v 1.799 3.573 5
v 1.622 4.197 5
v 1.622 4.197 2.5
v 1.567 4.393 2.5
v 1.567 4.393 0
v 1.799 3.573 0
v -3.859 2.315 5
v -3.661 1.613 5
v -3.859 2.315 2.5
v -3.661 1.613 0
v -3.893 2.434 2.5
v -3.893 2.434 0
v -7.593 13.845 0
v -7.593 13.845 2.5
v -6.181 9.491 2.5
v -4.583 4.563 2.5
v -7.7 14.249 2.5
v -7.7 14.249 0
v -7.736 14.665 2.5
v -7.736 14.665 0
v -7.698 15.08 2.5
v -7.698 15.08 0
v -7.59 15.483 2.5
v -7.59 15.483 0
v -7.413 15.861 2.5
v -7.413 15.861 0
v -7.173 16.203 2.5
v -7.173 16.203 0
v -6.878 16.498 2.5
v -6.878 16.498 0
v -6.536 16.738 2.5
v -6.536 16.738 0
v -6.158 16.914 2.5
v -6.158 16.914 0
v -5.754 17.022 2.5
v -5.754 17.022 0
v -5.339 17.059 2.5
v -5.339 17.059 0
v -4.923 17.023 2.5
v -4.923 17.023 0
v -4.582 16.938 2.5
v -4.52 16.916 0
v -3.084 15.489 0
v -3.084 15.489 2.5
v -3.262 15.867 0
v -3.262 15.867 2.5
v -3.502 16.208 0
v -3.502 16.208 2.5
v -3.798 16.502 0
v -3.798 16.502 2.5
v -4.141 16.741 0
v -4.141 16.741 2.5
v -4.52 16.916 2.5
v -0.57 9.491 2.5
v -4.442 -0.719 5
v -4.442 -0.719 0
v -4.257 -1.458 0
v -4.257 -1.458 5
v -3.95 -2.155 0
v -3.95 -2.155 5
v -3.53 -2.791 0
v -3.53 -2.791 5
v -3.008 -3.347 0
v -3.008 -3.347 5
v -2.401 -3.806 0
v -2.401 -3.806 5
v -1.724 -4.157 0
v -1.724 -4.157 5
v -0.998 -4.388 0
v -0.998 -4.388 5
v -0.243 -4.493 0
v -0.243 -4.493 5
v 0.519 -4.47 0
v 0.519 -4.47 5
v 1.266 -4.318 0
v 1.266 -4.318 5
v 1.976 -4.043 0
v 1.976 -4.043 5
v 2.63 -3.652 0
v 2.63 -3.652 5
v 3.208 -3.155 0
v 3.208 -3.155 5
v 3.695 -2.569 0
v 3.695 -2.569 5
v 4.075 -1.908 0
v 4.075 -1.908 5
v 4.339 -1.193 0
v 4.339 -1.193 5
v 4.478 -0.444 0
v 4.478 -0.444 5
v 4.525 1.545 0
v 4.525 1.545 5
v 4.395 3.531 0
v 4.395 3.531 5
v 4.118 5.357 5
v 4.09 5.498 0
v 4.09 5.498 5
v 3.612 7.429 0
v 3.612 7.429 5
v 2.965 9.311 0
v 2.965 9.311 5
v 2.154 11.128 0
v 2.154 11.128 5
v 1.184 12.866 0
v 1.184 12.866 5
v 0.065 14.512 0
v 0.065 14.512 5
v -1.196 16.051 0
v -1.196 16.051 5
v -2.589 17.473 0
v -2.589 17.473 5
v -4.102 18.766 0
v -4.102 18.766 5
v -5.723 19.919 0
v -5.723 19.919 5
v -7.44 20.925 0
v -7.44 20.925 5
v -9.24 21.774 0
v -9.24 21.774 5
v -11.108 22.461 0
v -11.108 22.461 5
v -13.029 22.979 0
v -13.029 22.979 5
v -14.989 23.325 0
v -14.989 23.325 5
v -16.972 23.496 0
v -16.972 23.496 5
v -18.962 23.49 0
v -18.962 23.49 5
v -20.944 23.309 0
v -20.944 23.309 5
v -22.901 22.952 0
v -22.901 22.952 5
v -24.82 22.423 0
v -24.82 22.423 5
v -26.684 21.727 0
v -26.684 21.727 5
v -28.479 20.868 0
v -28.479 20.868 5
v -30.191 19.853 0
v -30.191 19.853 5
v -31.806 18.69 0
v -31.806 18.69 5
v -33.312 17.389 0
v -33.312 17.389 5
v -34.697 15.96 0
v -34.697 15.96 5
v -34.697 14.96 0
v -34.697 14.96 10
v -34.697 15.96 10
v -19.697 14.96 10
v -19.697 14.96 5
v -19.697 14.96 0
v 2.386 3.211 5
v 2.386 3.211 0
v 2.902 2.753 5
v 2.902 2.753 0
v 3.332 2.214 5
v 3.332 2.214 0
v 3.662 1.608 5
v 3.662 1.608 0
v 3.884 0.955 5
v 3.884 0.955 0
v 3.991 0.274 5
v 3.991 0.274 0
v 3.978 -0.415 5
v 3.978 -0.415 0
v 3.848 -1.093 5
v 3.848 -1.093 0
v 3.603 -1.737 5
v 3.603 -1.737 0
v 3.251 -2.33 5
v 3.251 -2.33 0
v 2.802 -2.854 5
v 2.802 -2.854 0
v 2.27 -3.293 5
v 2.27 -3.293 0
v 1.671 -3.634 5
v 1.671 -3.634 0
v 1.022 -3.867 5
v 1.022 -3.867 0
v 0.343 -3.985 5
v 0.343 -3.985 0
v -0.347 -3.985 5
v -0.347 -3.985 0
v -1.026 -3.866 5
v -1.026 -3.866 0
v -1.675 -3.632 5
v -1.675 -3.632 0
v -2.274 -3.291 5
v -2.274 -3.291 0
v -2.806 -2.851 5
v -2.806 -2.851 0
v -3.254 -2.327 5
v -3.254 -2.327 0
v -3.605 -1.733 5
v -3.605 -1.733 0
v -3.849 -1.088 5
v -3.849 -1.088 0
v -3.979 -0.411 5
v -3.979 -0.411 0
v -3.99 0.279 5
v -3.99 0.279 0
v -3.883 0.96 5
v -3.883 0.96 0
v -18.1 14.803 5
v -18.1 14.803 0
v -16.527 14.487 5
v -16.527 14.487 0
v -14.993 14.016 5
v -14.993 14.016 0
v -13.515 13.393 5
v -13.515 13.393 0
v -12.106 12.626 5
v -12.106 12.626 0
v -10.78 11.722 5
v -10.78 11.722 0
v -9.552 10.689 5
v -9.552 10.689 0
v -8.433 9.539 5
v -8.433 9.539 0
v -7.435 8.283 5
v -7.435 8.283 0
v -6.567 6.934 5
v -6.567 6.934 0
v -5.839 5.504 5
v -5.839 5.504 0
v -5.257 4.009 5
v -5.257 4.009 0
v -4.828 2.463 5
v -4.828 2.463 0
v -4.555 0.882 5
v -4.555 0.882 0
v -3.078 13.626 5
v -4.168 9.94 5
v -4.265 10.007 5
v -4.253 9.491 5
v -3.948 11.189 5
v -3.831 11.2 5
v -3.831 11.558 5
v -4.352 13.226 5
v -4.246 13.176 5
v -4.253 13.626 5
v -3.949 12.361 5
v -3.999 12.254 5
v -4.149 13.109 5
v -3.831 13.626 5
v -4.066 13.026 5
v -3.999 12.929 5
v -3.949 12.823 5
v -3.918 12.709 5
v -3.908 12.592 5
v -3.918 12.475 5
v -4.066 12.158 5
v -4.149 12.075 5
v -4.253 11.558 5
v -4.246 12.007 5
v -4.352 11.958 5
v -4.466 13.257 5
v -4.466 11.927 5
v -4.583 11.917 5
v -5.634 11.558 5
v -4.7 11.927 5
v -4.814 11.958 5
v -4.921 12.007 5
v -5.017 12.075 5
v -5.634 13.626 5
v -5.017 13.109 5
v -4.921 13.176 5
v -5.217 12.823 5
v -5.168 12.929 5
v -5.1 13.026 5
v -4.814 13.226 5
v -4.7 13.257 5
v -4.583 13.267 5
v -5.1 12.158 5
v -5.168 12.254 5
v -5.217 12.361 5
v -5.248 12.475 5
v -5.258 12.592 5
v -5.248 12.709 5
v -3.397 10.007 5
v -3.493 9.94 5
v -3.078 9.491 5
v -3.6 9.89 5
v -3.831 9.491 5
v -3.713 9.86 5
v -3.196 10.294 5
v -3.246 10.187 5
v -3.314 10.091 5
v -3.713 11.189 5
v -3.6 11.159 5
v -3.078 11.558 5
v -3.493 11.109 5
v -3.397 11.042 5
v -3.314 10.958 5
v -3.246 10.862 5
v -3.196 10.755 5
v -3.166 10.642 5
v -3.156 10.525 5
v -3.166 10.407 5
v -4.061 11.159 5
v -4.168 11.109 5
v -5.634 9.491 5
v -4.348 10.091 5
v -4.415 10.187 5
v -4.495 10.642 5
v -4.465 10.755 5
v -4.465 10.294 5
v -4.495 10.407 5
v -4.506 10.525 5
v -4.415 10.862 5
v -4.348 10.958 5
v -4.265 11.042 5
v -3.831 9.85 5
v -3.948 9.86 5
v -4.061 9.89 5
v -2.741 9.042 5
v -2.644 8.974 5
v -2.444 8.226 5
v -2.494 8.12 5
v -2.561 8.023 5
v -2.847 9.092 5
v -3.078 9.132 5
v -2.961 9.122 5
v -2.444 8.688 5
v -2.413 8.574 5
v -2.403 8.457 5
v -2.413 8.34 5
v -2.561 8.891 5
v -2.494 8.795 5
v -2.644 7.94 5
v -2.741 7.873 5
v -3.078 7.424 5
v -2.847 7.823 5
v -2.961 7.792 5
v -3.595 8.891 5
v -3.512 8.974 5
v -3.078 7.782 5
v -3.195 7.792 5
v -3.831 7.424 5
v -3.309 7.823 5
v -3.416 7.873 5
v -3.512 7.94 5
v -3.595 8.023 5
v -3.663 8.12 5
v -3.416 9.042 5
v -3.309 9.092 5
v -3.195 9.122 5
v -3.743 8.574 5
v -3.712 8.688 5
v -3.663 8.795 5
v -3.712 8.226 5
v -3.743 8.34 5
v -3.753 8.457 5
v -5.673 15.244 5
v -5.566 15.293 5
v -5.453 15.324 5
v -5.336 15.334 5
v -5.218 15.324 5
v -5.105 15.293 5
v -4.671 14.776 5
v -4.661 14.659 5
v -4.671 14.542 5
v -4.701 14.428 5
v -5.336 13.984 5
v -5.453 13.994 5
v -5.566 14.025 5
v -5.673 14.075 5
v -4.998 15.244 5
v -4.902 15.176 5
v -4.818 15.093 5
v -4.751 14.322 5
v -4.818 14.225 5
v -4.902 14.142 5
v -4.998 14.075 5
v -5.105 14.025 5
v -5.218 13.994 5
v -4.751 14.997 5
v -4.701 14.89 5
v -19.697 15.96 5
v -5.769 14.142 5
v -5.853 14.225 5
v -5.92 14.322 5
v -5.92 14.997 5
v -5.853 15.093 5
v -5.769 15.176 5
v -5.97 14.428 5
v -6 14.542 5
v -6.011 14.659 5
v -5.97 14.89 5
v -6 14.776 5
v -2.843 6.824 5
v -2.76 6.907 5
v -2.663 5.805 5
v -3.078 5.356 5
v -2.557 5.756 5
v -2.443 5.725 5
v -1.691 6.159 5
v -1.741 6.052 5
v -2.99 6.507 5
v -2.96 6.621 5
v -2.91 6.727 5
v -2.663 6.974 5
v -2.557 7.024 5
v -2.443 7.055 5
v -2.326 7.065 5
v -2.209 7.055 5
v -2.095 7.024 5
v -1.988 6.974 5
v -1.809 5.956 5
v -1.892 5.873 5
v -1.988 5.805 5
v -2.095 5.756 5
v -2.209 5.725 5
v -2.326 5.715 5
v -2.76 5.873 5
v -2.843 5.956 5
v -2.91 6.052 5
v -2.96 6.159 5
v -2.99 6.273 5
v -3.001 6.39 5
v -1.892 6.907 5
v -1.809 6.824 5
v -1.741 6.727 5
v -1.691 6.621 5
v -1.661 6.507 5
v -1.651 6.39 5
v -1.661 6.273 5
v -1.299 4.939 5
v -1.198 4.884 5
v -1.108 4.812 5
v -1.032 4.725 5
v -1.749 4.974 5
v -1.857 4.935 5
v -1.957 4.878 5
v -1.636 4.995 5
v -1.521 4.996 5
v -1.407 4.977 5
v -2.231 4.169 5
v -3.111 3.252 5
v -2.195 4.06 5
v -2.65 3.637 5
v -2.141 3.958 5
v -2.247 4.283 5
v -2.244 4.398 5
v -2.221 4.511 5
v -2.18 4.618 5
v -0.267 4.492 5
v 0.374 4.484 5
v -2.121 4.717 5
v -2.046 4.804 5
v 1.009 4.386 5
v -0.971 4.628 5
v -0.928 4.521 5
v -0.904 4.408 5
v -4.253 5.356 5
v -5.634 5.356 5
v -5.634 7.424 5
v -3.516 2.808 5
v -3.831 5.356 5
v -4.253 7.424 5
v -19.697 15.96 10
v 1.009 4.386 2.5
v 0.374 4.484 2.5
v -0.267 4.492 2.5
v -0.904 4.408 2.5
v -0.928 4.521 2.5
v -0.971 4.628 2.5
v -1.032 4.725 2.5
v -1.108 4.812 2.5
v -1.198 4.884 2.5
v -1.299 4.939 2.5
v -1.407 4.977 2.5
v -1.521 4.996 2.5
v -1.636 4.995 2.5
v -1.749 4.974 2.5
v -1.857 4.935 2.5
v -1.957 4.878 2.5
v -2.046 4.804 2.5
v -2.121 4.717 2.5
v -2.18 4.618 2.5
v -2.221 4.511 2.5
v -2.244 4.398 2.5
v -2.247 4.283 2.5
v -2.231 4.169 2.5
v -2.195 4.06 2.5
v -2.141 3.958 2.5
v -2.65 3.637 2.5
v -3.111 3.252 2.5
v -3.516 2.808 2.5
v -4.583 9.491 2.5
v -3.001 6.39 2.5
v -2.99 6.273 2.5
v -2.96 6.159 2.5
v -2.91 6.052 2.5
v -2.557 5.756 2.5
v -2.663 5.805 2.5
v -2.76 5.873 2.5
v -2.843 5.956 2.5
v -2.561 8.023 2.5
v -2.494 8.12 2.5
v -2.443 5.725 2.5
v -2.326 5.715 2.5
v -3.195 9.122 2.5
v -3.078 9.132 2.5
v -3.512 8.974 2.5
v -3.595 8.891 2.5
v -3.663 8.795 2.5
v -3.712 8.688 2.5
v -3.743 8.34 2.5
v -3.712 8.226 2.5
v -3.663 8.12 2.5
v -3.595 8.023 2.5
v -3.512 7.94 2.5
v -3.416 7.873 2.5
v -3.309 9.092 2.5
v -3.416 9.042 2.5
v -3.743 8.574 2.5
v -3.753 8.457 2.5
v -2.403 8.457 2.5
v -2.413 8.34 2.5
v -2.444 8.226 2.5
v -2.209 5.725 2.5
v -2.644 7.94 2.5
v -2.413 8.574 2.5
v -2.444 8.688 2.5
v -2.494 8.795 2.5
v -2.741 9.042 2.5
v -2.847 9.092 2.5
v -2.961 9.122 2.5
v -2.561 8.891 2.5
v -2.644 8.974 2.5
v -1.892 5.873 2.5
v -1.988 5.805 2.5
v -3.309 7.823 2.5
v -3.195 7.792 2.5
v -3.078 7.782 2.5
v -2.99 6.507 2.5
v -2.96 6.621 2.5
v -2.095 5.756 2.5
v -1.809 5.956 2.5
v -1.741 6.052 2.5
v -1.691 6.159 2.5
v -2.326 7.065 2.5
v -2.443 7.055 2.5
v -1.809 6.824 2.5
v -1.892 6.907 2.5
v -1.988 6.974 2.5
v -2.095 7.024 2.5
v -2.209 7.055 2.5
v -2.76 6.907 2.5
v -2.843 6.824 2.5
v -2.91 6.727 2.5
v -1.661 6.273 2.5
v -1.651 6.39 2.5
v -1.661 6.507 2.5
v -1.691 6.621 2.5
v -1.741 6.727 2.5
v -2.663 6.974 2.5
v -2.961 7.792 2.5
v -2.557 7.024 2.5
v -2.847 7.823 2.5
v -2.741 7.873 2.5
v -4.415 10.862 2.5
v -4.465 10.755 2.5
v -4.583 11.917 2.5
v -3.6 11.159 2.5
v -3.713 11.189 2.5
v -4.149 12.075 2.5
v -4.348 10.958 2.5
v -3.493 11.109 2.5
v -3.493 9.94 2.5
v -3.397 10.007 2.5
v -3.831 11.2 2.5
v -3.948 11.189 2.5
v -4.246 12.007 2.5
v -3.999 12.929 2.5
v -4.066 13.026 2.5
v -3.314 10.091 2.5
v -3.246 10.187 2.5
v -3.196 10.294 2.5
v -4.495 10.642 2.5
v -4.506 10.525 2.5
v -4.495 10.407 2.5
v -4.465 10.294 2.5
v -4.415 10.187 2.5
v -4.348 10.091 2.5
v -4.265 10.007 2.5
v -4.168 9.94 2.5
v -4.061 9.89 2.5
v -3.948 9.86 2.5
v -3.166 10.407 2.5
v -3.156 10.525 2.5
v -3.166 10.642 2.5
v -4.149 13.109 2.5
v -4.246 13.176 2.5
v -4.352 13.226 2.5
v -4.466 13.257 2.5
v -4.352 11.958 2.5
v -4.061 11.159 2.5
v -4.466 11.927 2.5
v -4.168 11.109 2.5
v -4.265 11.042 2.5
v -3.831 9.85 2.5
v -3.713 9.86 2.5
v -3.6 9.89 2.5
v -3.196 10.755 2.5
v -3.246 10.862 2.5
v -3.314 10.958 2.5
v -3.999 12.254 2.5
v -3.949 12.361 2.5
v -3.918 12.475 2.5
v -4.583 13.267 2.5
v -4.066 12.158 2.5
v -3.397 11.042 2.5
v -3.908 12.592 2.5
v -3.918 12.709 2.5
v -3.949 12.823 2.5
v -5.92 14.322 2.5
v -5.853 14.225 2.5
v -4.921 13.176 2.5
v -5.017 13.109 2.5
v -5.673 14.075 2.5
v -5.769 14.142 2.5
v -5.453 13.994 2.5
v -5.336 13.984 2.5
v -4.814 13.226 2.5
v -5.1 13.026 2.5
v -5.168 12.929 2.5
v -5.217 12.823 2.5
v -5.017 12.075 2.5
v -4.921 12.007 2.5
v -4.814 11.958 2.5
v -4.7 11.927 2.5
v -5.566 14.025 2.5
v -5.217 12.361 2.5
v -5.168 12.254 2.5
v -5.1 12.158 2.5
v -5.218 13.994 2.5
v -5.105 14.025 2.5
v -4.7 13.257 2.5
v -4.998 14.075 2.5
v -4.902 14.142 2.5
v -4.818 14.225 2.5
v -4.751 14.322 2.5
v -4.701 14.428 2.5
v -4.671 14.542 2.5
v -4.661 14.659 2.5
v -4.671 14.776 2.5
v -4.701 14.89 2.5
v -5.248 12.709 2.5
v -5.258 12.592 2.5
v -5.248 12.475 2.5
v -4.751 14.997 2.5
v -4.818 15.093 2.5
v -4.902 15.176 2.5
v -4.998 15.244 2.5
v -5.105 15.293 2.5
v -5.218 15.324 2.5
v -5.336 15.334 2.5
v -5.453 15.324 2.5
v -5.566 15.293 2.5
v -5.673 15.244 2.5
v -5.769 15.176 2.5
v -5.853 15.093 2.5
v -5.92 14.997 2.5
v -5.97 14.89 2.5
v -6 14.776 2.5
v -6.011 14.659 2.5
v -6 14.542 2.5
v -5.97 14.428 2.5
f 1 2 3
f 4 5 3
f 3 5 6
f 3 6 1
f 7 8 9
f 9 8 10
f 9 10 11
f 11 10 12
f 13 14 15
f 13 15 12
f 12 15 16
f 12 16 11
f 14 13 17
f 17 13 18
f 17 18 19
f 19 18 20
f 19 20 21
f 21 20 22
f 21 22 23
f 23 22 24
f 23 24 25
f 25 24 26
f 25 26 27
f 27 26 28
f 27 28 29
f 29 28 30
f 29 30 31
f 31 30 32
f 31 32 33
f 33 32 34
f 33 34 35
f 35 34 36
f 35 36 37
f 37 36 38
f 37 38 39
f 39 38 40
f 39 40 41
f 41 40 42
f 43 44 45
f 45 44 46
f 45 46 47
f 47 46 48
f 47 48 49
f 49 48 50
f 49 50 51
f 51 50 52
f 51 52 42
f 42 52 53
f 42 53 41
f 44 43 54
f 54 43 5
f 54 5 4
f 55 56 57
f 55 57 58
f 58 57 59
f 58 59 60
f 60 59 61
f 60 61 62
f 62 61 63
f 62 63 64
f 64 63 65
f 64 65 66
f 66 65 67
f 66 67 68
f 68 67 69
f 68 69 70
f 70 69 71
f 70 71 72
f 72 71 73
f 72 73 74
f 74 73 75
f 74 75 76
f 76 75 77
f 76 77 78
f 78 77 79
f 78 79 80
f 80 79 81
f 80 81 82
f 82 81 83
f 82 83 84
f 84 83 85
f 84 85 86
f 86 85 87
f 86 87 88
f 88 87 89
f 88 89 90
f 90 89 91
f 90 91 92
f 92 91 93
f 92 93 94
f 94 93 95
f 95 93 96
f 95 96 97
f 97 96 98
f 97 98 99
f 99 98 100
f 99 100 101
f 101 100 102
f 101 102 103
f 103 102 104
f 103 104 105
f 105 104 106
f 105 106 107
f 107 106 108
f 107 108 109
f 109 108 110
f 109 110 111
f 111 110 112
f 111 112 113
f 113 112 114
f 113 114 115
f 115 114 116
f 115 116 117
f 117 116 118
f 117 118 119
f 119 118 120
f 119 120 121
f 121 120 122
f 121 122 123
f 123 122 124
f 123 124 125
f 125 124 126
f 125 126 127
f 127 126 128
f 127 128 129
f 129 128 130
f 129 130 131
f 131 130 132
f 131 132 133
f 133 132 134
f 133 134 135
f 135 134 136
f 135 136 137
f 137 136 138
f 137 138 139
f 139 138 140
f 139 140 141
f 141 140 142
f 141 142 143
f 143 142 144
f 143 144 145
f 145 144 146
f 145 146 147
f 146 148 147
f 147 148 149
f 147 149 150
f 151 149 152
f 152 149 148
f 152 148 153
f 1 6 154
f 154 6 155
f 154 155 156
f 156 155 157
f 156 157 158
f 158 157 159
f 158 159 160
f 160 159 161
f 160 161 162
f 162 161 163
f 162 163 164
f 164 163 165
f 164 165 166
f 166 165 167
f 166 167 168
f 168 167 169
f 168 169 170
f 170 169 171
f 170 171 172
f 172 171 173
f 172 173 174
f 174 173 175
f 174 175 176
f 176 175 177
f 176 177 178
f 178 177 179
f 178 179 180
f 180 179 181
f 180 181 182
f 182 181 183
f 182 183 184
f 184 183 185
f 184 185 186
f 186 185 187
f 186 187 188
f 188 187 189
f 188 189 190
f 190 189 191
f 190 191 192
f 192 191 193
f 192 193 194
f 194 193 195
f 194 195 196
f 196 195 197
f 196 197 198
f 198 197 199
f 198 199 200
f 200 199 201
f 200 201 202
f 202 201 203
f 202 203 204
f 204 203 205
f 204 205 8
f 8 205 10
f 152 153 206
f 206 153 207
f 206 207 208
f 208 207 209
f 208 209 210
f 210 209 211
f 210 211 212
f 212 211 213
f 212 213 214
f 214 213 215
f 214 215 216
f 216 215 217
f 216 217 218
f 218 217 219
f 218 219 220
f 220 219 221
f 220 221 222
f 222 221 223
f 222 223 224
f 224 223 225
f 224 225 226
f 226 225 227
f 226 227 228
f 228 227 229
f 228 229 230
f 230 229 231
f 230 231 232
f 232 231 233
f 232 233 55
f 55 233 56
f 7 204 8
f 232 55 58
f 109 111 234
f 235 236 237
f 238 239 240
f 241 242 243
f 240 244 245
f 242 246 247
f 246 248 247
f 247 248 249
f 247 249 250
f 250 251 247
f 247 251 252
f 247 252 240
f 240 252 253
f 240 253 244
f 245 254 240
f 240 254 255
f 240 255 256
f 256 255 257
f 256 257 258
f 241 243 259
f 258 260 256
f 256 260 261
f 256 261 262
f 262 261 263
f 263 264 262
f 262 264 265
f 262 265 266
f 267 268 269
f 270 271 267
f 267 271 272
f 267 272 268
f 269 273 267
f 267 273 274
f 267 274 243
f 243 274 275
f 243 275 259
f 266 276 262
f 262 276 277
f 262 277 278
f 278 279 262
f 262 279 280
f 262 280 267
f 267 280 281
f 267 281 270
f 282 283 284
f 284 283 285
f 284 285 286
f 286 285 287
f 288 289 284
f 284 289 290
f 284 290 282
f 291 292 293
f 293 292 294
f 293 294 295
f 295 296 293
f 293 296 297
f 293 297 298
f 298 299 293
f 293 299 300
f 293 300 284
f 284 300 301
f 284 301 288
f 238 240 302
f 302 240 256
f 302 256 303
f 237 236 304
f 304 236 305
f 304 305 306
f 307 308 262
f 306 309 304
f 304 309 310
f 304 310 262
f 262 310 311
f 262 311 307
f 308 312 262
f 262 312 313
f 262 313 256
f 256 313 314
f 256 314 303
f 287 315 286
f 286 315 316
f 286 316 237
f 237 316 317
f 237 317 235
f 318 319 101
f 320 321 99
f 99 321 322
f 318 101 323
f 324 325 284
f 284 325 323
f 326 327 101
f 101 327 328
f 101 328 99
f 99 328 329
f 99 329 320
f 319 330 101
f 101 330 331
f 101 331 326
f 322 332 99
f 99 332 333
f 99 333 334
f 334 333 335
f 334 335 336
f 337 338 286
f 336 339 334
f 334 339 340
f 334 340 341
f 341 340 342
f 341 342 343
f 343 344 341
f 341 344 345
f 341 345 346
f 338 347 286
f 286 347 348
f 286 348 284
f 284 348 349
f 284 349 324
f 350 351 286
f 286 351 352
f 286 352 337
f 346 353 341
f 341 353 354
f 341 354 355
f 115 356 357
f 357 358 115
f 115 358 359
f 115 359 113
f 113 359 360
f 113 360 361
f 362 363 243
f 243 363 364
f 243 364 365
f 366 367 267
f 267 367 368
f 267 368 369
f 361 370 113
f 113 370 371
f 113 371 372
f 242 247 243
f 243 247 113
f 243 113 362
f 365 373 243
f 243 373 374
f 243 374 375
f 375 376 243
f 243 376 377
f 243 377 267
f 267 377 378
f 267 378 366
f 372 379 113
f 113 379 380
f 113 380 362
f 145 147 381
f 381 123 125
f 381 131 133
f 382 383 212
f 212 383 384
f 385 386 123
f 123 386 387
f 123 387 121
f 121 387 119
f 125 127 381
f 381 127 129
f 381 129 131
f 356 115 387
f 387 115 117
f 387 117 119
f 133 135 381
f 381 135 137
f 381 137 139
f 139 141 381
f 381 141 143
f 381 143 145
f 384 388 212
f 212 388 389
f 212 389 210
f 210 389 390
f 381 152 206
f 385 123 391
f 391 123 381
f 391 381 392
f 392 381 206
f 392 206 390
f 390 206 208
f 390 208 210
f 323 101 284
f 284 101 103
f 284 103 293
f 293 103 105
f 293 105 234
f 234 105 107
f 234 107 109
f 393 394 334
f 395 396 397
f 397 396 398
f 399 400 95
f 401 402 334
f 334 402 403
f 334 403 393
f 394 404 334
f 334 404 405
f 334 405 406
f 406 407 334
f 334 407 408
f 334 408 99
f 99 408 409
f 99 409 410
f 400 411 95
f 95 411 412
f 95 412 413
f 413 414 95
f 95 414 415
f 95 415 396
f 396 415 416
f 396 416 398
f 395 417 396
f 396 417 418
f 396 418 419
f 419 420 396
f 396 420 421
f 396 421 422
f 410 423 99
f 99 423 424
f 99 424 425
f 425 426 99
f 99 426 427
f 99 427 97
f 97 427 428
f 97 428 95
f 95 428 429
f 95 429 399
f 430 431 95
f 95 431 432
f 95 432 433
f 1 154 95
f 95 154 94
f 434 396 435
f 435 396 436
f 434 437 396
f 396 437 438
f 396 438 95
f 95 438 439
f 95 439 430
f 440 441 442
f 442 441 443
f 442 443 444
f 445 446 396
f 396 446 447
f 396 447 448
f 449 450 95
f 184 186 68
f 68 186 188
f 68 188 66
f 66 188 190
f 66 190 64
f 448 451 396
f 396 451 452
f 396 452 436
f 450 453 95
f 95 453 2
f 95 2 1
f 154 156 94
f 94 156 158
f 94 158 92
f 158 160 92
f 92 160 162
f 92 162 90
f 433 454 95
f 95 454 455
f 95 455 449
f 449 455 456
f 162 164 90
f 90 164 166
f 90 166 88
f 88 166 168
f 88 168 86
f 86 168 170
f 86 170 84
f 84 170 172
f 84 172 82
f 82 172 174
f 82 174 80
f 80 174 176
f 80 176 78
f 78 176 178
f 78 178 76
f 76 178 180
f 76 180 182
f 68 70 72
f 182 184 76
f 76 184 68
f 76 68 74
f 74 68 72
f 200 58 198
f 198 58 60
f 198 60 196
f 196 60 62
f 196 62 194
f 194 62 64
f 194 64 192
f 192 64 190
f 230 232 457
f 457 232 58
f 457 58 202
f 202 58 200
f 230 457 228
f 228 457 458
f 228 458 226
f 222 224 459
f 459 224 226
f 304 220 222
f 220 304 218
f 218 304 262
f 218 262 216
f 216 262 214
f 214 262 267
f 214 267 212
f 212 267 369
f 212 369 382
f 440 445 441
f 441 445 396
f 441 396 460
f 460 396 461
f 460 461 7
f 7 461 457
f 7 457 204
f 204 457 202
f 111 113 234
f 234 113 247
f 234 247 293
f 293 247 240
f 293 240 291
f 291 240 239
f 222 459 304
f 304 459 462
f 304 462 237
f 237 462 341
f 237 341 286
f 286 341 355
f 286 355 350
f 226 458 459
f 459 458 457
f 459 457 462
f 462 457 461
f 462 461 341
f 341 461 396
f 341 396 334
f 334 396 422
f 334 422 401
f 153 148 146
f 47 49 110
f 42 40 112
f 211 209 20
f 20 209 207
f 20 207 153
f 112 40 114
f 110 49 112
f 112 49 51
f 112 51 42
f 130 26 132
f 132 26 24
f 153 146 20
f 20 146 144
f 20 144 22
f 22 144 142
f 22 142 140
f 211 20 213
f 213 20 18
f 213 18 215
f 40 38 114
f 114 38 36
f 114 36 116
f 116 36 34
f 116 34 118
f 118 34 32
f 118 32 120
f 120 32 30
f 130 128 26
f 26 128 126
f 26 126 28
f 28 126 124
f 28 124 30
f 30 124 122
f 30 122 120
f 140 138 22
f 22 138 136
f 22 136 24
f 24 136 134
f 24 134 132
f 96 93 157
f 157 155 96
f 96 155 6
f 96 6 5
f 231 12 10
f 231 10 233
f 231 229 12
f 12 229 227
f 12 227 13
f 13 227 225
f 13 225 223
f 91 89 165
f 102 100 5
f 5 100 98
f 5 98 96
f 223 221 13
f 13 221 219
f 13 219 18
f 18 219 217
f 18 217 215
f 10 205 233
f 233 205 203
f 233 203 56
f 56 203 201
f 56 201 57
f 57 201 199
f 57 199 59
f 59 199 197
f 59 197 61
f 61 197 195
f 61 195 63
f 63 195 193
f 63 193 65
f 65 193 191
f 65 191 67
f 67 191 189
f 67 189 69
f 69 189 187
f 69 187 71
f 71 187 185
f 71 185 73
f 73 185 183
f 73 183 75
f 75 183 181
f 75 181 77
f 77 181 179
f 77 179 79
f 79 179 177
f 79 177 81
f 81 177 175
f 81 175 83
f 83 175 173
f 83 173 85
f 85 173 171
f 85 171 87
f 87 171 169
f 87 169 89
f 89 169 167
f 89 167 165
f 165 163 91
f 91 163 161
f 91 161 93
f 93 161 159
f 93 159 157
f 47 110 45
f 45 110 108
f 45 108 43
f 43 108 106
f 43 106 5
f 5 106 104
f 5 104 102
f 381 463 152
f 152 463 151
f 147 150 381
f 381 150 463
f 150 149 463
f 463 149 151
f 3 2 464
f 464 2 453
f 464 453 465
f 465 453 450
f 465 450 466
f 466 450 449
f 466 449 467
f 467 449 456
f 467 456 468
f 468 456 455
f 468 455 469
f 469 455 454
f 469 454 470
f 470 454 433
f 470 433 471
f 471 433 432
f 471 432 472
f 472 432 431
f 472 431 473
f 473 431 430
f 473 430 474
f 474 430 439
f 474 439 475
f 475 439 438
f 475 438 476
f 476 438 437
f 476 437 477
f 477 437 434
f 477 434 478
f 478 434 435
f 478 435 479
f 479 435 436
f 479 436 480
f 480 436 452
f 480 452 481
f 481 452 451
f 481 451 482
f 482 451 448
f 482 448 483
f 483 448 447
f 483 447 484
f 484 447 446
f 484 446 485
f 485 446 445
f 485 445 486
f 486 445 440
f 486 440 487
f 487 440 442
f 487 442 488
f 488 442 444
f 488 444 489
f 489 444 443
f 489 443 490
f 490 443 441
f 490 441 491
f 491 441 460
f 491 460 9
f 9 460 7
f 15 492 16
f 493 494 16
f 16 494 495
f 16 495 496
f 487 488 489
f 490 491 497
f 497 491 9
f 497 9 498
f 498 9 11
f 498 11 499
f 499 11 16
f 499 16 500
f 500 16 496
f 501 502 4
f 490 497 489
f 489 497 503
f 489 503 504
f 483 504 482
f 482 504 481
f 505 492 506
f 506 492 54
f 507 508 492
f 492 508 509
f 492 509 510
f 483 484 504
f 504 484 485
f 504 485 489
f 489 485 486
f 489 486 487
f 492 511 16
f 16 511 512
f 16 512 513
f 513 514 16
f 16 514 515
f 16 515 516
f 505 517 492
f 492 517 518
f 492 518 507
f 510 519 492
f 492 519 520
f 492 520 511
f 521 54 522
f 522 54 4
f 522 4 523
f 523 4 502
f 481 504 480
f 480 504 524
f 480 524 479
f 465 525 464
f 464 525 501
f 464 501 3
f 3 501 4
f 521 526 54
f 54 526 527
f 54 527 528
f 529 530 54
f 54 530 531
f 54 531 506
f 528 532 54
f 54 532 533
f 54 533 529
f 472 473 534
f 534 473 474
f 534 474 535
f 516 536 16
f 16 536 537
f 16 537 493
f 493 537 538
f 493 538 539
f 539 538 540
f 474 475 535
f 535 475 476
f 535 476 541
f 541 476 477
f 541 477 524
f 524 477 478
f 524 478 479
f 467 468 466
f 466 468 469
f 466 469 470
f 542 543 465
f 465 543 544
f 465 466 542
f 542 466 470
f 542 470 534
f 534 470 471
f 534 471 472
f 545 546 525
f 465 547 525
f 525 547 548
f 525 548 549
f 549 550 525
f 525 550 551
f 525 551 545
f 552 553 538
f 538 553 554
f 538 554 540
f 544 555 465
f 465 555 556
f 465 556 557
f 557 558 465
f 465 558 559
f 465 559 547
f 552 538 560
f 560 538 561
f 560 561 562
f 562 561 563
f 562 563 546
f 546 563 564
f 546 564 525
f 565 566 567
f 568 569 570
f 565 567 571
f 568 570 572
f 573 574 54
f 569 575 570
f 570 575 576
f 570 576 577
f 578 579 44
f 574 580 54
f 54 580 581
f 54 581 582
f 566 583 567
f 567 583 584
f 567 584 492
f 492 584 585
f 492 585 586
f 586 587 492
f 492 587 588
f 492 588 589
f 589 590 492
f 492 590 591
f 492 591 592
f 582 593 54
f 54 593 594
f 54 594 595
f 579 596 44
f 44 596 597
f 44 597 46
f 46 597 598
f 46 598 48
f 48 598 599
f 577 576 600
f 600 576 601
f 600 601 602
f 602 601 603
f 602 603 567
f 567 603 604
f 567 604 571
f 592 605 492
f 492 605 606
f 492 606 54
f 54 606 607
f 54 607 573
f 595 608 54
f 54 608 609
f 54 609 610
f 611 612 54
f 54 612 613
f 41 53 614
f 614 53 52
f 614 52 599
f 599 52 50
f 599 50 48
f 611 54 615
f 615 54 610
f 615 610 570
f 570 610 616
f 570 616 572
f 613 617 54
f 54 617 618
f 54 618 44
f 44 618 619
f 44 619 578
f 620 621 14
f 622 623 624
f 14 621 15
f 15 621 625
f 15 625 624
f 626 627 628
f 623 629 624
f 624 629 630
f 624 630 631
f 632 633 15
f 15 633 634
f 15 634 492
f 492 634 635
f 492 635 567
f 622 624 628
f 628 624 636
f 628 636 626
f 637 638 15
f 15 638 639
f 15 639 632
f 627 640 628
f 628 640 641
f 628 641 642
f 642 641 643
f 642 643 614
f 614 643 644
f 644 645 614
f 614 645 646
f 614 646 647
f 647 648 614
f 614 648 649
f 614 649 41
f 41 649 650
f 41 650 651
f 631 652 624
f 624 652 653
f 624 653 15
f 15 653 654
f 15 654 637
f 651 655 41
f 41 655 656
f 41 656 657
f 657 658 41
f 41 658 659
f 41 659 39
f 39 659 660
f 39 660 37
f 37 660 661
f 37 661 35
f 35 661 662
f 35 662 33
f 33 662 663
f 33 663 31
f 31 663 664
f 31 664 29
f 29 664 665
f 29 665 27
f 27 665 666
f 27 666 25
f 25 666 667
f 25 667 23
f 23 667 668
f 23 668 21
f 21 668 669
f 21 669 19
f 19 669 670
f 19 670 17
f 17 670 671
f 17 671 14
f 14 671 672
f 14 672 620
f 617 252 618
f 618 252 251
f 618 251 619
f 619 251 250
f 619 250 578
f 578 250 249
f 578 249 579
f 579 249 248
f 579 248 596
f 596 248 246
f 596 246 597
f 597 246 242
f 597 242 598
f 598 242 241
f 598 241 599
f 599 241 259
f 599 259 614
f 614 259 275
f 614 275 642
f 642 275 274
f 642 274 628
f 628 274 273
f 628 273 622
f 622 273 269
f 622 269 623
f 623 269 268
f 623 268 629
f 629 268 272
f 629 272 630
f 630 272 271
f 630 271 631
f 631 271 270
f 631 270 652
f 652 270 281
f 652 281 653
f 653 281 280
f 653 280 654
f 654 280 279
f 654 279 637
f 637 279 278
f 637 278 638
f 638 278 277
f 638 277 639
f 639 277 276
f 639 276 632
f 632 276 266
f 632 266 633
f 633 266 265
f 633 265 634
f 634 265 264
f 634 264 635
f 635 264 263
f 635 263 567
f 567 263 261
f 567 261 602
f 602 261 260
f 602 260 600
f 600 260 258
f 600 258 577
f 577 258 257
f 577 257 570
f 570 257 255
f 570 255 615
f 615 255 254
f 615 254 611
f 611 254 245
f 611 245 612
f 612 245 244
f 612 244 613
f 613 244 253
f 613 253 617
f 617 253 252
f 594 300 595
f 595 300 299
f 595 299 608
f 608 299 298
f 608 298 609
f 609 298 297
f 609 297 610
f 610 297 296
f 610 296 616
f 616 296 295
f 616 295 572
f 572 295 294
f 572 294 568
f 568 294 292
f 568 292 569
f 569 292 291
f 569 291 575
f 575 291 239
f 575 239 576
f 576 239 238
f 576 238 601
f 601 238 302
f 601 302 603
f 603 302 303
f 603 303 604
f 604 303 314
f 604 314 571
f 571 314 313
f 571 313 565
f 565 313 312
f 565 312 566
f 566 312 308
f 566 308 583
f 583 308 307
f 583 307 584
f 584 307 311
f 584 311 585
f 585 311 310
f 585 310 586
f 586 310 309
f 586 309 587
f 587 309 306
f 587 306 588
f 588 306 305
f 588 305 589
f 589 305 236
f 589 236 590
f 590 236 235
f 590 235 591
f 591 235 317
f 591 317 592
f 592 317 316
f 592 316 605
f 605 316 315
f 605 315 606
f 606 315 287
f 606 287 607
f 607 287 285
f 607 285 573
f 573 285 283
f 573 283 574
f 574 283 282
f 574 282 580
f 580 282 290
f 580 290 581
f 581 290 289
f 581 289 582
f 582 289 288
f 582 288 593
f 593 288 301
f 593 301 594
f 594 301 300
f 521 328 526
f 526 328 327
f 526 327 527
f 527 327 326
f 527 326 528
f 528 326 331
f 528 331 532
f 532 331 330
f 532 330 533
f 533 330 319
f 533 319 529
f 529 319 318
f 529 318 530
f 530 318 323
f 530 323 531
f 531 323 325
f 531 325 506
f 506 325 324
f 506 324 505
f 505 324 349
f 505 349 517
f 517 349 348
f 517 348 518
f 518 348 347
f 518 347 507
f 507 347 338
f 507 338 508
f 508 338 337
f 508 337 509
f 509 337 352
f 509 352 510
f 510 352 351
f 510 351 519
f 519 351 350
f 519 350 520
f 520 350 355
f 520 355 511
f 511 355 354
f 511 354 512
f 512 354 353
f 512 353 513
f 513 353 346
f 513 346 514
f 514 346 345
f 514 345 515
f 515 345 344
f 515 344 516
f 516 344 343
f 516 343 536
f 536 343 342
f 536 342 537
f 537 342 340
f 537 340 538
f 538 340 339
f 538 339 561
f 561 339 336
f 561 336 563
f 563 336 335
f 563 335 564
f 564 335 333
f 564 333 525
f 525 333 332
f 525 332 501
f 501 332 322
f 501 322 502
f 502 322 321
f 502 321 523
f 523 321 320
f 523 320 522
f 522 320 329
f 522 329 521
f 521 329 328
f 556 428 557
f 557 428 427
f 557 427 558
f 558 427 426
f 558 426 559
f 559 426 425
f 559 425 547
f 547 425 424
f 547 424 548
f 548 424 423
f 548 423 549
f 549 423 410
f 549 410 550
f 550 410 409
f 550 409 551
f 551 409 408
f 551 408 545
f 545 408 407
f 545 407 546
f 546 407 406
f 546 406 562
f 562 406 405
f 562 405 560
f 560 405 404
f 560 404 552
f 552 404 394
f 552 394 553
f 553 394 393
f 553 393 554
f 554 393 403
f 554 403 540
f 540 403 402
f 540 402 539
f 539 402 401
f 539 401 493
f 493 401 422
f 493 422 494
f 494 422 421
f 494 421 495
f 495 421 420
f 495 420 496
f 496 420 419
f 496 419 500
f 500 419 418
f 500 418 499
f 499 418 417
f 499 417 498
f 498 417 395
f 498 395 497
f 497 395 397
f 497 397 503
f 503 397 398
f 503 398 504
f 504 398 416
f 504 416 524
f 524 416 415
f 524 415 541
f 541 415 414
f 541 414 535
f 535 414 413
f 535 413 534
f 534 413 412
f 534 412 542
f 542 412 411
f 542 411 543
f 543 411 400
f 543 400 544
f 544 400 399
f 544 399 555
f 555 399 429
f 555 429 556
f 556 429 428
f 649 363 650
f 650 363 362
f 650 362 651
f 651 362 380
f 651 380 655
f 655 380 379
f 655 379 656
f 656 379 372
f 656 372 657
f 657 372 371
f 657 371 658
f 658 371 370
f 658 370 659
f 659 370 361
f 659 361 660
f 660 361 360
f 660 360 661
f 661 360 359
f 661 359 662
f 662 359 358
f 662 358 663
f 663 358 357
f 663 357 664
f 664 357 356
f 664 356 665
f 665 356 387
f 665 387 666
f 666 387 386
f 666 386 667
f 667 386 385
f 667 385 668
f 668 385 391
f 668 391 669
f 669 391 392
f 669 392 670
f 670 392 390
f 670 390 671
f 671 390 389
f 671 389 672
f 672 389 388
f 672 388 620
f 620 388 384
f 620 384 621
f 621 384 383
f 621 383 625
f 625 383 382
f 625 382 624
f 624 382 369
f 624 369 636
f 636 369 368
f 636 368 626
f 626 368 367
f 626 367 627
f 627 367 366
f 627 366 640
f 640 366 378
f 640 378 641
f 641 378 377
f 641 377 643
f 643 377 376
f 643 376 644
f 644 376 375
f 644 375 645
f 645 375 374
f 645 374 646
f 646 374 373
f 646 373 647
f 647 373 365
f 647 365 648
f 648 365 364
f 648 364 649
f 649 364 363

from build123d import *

# Parameters (mm, degrees)
BOSS_EXTRUDE1_DEPTH = 5
SKETCH1_3_W         = 15
SKETCH1_3_H         = 1
BOSS_EXTRUDE2_DEPTH = 10
BOSS_EXTRUDE3_START = 5
SKETCH1_4_R         = 0.675
BOSS_EXTRUDE3_DEPTH = 2.5


with BuildPart() as part:
    # Sketch1 → Boss-Extrude1 (new body)
    with BuildSketch(Plane.XY):
        with BuildLine():
            Line((-34.696792319, 15.960080691), (-34.696792319, 14.960080691))
            Line((-34.696792319, 14.960080691), (-19.696792319, 14.960080691))
            ThreePointArc((-19.696792319, 14.960080691), (-8.978328635, 10.128349866), (-4.442261745, -0.718547556))
            ThreePointArc((-4.442261745, -0.718547556), (0.138348196, -4.497872806), (4.478025356, -0.444172161))
            ThreePointArc((4.478025356, -0.444172161), (-9.240182202, 21.774129955), (-34.696792319, 15.960080691))
        make_face()
        with BuildLine():
            Line((-3.89291928, 2.43426562), (-7.593303854, 13.845333863))
            ThreePointArc((-7.593303854, 13.845333863), (-6.157572873, 16.914026296), (-3.083690723, 15.489440313))
            Line((-3.083690723, 15.489440313), (1.566927521, 4.392862954))
            Line((1.566927521, 4.392862954), (1.798943002, 3.572646648))
            ThreePointArc((1.798943002, 3.572646648), (1.351572105, -3.764738085), (-3.660510182, 1.612657808))
            Line((-3.660510182, 1.612657808), (-3.89291928, 2.43426562))
        make_face(mode=Mode.SUBTRACT)
    extrude(amount=BOSS_EXTRUDE1_DEPTH)

    # Sketch1<3> → Boss-Extrude2 (add)
    with BuildSketch(Plane.XY):
        with Locations((-27.196792319, 15.460080691)):
            Rectangle(SKETCH1_3_W, SKETCH1_3_H)
    extrude(amount=BOSS_EXTRUDE2_DEPTH)

    # Sketch1<4> → Boss-Extrude3 (add)
    with BuildSketch(Plane.XY.offset(BOSS_EXTRUDE3_START)):
        with BuildLine():
            Line((1.622209226, 4.197432218), (1.566927521, 4.392862954))
            Line((1.566927521, 4.392862954), (-3.083690723, 15.489440313))
            ThreePointArc((-3.083690723, 15.489440313), (-6.157572873, 16.914026296), (-7.593303854, 13.845333863))
            Line((-7.593303854, 13.845333863), (-3.89291928, 2.43426562))
            Line((-3.89291928, 2.43426562), (-3.859078085, 2.314630929))
            ThreePointArc((-3.859078085, 2.314630929), (-3.110655329, 3.251741598), (-2.141289558, 3.957888203))
            ThreePointArc((-2.141289558, 3.957888203), (-1.804156256, 4.956878575), (-0.903758531, 4.408312661))
            ThreePointArc((-0.903758531, 4.408312661), (0.374380142, 4.484399571), (1.622209226, 4.197432218))
        make_face()
        with Locations((-5.335514236, 14.659204884)):
            Circle(SKETCH1_4_R, mode=Mode.SUBTRACT)
        with Locations((-3.830625605, 10.524557353)):
            Circle(SKETCH1_4_R, mode=Mode.SUBTRACT)
        with Locations((-4.583069921, 12.591881119)):
            Circle(SKETCH1_4_R, mode=Mode.SUBTRACT)
        with Locations((-2.325736975, 6.389909821)):
            Circle(SKETCH1_4_R, mode=Mode.SUBTRACT)
        with Locations((-3.07818129, 8.457233587)):
            Circle(SKETCH1_4_R, mode=Mode.SUBTRACT)
    extrude(amount=-BOSS_EXTRUDE3_DEPTH)


solid = part.part
